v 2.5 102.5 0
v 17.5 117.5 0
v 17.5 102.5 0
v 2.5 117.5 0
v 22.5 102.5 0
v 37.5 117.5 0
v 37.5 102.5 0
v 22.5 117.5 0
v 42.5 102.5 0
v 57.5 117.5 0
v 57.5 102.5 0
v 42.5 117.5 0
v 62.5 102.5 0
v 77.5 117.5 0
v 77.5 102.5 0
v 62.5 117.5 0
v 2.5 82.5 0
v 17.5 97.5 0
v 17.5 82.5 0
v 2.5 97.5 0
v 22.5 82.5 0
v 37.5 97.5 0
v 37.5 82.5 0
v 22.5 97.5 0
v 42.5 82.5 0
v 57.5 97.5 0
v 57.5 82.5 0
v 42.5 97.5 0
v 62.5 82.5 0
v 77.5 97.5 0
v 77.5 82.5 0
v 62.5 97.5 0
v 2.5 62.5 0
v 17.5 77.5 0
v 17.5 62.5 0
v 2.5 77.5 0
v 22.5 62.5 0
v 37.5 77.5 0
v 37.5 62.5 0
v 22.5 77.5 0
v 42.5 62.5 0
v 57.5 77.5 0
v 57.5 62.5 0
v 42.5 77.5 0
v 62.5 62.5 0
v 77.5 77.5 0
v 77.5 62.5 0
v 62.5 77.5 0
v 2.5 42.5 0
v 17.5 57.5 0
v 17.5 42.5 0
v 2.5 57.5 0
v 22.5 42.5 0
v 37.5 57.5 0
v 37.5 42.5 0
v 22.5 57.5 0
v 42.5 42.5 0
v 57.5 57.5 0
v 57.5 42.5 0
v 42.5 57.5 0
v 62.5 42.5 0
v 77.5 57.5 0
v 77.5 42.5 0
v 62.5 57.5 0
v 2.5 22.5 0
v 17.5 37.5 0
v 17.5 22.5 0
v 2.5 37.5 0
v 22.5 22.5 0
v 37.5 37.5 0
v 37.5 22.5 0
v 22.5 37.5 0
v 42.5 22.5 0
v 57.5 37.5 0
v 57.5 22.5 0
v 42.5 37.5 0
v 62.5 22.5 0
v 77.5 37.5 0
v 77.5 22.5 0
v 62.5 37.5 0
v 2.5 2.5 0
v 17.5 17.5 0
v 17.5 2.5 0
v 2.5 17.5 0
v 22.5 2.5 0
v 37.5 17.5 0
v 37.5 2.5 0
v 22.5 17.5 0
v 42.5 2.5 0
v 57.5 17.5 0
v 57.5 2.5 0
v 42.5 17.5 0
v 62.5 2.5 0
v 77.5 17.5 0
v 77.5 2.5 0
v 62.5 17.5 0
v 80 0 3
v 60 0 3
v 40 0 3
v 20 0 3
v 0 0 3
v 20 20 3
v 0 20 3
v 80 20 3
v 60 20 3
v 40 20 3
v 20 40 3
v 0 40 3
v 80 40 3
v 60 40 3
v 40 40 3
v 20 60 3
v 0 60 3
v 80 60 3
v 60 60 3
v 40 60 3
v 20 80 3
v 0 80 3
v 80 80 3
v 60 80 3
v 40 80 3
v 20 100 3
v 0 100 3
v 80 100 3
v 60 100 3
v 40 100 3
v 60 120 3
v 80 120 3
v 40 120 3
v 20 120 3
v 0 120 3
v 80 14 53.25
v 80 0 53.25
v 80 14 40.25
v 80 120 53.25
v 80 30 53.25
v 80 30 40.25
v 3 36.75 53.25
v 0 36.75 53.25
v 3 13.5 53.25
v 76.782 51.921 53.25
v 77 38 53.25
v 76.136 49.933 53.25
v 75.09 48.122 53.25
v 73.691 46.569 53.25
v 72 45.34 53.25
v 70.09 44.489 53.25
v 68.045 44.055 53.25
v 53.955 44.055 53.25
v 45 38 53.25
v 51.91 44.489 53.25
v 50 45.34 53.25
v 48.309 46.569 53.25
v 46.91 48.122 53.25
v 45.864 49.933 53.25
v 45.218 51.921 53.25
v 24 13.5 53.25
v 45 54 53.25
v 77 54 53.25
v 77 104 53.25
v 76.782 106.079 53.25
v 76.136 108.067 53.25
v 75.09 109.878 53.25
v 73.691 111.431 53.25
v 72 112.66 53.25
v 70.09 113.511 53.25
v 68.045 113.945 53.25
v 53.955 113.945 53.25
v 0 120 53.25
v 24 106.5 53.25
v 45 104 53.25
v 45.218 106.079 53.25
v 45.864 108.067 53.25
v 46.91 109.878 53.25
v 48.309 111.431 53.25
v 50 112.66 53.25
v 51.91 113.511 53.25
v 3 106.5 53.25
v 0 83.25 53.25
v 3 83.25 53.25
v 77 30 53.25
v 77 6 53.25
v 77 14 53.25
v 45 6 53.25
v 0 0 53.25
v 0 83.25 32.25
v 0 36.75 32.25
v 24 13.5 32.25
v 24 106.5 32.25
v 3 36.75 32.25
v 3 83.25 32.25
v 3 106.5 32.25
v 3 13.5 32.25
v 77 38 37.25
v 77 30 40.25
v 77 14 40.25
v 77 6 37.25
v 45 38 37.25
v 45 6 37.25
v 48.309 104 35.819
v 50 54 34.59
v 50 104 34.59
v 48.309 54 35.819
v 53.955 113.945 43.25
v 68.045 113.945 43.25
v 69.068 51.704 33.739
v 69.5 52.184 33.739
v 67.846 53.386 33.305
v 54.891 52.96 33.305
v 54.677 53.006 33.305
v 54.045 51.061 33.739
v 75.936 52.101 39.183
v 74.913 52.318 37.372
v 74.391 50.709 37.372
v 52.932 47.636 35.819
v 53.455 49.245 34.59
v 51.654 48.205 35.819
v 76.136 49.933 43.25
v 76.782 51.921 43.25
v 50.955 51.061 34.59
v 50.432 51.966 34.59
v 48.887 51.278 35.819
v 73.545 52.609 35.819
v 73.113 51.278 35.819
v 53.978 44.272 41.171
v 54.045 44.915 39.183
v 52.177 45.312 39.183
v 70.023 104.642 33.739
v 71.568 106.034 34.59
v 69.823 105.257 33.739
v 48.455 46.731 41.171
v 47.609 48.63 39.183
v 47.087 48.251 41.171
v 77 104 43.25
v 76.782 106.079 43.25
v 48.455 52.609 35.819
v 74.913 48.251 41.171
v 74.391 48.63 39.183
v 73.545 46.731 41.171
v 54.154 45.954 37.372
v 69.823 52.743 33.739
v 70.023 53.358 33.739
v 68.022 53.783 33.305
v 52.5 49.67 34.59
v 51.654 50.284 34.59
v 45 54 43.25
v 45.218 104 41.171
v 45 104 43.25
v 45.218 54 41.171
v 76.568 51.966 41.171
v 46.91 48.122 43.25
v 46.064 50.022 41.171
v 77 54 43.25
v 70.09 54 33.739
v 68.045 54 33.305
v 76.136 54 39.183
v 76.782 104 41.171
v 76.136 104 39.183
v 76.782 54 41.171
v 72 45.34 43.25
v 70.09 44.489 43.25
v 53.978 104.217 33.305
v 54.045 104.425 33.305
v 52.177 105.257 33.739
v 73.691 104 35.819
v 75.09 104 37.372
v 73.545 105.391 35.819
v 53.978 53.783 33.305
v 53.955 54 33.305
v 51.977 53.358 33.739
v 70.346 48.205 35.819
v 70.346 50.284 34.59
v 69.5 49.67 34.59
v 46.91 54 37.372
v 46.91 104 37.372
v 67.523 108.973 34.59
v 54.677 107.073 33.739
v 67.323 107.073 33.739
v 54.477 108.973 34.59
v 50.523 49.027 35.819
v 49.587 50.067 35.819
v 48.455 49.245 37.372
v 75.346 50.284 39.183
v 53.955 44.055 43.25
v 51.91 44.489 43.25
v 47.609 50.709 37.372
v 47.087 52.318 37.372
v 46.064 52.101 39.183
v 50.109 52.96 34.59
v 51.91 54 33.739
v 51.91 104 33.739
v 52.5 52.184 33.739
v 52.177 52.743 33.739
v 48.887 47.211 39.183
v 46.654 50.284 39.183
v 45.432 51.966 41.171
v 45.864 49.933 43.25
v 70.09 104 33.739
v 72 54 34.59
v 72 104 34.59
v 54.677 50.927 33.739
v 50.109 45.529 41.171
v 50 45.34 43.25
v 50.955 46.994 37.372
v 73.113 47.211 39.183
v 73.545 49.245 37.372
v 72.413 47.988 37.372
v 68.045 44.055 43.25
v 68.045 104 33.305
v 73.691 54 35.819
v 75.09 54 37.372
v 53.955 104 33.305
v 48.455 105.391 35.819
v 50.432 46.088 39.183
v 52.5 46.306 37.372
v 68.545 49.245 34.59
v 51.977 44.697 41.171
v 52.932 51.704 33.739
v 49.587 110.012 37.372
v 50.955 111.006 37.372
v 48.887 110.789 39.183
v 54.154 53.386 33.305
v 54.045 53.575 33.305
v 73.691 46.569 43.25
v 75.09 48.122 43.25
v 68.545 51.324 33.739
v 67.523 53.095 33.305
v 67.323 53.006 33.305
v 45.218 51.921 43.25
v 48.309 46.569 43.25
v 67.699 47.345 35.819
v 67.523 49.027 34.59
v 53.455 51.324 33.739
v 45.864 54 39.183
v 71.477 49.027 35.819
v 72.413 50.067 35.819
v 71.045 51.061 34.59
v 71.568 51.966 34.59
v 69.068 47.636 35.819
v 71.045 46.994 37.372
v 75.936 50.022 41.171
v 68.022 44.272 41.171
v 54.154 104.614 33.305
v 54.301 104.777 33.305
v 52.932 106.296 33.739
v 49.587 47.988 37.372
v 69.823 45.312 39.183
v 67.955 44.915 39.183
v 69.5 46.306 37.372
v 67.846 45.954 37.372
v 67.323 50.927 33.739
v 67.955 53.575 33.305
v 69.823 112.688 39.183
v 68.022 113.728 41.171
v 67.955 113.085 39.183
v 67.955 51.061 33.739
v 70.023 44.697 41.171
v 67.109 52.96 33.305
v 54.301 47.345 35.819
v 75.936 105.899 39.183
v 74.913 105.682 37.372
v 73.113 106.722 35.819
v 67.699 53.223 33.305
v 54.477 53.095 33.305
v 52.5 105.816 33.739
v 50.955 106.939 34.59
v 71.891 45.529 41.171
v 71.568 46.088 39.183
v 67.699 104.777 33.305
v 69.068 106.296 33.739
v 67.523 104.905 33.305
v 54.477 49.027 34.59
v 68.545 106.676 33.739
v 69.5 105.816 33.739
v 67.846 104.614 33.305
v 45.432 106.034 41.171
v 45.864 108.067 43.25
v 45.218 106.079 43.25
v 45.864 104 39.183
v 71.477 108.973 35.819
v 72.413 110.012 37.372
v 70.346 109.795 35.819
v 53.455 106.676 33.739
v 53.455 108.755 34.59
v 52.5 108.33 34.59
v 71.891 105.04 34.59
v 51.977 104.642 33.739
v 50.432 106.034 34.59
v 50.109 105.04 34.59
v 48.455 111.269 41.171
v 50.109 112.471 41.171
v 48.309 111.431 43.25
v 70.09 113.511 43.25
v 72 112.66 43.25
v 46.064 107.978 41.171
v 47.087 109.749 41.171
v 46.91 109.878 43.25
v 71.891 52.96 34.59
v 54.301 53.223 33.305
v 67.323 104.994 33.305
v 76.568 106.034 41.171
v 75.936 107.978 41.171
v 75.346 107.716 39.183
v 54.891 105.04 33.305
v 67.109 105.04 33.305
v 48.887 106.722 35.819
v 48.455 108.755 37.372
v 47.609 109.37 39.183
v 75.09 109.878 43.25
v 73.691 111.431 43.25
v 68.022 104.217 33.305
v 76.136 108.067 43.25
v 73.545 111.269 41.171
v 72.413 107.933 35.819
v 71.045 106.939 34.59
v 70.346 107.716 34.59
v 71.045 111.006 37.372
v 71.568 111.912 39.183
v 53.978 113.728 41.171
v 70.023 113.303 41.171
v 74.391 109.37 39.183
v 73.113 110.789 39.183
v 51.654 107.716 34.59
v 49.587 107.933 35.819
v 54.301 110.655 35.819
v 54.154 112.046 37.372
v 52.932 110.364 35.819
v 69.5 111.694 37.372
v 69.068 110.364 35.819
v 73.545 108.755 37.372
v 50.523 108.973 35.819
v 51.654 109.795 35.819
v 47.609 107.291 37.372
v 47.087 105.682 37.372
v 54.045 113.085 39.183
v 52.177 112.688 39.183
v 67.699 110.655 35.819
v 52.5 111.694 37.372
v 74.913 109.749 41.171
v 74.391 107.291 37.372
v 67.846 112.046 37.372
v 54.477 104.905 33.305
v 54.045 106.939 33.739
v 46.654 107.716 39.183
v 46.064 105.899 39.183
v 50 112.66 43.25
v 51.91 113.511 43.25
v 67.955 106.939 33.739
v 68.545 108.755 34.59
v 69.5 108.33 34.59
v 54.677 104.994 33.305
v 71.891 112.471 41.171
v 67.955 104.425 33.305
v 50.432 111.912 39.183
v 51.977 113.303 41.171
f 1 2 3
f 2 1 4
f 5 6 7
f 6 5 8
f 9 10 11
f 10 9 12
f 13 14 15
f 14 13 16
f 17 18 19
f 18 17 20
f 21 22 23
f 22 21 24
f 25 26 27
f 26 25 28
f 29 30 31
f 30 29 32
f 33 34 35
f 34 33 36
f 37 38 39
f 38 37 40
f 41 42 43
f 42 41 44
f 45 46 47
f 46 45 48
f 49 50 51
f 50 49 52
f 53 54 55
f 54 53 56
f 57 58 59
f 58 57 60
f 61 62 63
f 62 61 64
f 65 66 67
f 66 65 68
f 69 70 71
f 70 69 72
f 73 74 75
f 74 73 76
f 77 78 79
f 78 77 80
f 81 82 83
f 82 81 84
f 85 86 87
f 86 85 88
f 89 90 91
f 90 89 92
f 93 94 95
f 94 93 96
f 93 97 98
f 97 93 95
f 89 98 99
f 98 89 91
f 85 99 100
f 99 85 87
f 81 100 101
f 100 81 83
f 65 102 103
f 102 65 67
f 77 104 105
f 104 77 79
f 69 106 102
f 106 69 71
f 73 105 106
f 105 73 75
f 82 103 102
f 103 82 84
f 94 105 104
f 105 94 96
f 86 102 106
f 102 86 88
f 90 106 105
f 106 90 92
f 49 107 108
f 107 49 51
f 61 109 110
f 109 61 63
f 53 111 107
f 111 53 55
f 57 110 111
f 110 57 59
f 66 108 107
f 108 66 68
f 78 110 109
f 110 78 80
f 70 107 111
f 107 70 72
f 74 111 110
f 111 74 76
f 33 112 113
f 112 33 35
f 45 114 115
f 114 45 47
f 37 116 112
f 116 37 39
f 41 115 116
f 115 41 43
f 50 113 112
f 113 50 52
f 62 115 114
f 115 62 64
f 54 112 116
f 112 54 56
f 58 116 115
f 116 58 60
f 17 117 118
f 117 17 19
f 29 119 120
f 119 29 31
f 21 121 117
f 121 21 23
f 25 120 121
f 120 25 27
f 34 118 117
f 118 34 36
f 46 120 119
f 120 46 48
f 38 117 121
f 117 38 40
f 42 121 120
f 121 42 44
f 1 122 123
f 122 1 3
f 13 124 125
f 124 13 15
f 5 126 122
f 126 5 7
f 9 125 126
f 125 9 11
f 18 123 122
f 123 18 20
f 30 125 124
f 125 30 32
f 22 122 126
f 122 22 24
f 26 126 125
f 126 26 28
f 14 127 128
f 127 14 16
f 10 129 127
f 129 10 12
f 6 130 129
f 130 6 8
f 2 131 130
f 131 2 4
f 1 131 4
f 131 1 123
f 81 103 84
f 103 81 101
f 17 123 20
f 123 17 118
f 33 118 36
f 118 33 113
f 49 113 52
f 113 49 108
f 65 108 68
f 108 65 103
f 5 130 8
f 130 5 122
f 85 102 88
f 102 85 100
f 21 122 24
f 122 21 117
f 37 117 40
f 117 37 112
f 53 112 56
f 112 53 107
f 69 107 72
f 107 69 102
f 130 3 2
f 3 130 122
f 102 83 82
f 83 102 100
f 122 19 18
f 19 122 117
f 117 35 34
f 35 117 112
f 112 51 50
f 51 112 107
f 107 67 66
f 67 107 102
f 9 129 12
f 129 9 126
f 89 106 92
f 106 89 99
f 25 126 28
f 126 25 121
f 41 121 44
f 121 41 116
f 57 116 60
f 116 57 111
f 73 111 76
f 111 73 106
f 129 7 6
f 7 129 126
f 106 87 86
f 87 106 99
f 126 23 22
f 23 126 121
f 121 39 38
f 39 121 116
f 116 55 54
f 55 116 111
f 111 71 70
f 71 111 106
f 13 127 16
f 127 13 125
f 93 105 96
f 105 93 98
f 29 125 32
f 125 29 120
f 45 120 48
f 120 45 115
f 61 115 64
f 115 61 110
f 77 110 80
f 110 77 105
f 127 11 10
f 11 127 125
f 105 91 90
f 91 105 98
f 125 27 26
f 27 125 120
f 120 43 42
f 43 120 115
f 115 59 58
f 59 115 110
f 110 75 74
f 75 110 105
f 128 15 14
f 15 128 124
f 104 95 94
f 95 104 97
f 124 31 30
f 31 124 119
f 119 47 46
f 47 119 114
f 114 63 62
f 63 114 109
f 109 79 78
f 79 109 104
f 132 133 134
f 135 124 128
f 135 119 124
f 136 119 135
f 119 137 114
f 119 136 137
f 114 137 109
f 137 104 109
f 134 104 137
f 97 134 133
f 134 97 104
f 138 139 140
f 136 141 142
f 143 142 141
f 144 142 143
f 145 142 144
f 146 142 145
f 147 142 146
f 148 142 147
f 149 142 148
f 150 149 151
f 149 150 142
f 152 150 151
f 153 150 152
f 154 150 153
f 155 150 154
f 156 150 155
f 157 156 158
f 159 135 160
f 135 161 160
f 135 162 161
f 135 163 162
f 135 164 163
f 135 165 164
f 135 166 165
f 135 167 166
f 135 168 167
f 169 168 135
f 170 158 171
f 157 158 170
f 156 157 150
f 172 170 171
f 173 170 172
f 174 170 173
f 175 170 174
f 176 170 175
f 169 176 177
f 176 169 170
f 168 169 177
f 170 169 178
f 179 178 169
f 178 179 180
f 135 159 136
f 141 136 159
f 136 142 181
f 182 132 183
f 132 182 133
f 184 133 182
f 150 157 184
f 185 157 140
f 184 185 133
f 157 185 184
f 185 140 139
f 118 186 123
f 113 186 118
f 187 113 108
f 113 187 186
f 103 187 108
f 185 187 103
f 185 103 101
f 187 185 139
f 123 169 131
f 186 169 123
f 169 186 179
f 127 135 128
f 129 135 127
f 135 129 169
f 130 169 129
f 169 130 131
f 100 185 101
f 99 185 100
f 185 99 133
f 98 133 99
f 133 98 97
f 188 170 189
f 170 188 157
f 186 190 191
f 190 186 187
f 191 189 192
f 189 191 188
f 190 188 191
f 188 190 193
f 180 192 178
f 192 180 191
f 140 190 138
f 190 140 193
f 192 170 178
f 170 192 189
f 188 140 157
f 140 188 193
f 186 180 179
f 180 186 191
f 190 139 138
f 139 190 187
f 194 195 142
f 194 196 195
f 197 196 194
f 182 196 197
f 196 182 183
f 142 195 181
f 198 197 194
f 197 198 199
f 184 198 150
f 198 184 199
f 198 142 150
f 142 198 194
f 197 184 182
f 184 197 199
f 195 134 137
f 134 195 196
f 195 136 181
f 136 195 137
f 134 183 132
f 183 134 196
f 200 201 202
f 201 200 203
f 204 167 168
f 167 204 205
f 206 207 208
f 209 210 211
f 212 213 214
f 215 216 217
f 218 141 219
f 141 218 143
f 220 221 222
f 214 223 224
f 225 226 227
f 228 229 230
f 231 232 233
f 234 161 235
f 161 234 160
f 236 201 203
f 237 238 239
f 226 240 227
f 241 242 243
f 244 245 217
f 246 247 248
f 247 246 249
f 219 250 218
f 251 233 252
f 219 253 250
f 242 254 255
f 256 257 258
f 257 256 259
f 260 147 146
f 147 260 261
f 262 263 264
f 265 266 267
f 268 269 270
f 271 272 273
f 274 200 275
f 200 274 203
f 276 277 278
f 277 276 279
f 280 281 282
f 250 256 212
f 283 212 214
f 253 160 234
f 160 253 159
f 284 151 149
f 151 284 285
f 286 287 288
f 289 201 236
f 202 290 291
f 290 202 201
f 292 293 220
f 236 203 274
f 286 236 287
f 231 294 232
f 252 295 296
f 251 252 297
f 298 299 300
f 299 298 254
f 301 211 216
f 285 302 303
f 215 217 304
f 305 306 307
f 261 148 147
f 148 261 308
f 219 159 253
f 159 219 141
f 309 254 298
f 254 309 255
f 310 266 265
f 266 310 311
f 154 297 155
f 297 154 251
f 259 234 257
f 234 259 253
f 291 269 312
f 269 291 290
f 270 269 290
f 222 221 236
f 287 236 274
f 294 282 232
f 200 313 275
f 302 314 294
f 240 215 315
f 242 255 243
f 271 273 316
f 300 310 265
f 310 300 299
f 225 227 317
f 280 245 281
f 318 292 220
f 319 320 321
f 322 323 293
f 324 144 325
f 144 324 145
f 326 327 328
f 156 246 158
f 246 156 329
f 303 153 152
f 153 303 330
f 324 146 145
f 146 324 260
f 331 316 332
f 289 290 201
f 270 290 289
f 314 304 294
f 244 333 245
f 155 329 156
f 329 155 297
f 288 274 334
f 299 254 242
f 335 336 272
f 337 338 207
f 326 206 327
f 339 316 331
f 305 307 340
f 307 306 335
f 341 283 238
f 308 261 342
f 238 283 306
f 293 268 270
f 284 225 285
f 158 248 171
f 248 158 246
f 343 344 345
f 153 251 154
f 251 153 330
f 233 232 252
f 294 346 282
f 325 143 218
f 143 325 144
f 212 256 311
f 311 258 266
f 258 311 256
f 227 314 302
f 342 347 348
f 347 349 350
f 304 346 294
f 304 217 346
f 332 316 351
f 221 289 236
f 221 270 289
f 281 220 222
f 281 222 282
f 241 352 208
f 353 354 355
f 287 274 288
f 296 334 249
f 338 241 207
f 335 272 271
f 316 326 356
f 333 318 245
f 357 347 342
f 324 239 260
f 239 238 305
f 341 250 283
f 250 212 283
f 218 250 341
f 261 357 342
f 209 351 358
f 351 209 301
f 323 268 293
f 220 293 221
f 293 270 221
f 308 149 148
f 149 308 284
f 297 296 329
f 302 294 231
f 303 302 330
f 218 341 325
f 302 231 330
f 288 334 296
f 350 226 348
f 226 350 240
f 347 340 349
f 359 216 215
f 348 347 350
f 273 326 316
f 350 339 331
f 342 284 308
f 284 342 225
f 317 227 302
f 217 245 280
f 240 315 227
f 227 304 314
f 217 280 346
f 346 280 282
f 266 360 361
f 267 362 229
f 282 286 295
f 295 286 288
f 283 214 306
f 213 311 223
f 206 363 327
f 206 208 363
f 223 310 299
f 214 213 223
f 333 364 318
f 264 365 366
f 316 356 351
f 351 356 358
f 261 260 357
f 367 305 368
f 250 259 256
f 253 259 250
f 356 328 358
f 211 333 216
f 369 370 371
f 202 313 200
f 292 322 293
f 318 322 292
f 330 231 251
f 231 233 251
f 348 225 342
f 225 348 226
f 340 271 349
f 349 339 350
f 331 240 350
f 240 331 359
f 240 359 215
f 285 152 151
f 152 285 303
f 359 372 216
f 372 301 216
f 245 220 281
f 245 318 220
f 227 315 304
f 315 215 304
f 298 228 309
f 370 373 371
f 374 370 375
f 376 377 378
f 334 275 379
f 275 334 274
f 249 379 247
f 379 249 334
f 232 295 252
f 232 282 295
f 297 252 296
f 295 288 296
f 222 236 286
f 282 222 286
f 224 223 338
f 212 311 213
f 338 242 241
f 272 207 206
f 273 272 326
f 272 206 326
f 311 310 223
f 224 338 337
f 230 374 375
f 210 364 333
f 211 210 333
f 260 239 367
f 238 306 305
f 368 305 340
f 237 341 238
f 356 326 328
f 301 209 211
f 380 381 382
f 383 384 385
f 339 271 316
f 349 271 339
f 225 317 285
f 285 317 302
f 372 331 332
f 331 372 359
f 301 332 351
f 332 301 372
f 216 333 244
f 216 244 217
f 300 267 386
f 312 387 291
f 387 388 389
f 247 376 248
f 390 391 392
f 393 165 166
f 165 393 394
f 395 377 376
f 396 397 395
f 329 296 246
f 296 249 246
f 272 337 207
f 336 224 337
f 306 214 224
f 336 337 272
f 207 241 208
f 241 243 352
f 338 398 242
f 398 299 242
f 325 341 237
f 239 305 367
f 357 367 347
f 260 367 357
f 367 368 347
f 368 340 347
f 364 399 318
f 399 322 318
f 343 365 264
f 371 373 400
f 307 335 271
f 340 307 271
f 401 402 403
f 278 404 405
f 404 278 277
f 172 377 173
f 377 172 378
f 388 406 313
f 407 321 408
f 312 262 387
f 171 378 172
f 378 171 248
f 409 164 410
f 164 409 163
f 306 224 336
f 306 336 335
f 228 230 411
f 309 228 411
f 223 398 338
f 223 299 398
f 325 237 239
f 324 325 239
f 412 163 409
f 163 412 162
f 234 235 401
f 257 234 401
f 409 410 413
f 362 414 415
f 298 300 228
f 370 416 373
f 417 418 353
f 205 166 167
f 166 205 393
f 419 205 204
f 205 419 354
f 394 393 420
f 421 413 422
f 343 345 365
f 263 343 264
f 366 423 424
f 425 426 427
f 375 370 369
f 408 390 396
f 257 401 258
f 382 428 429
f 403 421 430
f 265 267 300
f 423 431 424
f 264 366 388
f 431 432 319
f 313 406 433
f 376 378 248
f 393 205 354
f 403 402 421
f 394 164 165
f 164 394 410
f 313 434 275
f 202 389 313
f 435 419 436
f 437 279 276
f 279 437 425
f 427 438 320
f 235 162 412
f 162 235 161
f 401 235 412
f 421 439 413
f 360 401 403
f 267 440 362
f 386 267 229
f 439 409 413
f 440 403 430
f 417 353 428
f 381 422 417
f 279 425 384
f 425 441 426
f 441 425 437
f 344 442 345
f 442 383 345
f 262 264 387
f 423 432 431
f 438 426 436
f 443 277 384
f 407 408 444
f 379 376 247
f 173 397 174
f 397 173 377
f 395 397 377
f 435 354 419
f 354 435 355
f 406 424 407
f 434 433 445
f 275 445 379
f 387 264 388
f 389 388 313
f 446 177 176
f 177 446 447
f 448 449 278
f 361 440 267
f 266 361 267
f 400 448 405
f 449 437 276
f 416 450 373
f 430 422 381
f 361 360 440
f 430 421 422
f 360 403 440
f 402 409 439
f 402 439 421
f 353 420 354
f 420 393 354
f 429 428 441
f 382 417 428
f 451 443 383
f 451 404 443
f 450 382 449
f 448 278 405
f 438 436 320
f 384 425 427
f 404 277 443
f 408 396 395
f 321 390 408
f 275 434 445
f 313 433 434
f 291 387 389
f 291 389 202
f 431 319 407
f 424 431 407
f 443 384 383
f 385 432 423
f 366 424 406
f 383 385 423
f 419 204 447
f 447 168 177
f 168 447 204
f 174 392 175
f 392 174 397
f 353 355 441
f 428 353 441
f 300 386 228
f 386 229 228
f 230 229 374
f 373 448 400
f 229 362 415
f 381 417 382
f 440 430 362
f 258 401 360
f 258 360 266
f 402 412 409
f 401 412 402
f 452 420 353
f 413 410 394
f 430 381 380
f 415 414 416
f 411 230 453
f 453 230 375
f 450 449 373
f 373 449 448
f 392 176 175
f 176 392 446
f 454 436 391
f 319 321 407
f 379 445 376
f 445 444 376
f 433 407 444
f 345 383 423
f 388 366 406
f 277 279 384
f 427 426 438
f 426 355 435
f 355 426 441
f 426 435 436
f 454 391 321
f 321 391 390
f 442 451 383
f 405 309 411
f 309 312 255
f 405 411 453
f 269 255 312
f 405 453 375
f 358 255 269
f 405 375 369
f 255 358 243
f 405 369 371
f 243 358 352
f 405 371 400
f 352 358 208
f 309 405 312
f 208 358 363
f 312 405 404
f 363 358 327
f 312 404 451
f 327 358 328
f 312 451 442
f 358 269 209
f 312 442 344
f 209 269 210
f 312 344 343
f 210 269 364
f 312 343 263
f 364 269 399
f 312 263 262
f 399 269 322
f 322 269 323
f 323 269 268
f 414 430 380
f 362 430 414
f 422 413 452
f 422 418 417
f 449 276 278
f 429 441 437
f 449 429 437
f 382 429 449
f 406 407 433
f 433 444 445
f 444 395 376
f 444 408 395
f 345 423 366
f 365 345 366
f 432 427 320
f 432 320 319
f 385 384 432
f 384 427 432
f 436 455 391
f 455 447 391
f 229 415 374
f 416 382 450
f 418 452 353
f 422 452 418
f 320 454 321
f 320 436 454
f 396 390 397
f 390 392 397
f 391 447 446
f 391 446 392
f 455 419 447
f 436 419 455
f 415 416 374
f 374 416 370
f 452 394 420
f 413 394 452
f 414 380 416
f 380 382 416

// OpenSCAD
// file: ../roundedcube.scad
// Aquired from https://danielupshaw.com/openscad-rounded-corners/
// License unknown

// Higher definition curves
$fs = 0.01;

module roundedcube(size = [1, 1, 1], center = false, radius = 0.5, apply_to = "all") {
	// If single value, convert to [x, y, z] vector
	size = (size[0] == undef) ? [size, size, size] : size;

	translate_min = radius;
	translate_xmax = size[0] - radius;
	translate_ymax = size[1] - radius;
	translate_zmax = size[2] - radius;

	diameter = radius * 2;

	module build_point(type = "sphere", rotate = [0, 0, 0]) {
		if (type == "sphere") {
			sphere(r = radius);
		} else if (type == "cylinder") {
			rotate(a = rotate)
			cylinder(h = diameter, r = radius, center = true);
		}
	}

	obj_translate = (center == false) ?
		[0, 0, 0] : [
			-(size[0] / 2),
			-(size[1] / 2),
			-(size[2] / 2)
		];

	translate(v = obj_translate) {
		hull() {
			for (translate_x = [translate_min, translate_xmax]) {
				x_at = (translate_x == translate_min) ? "min" : "max";
				for (translate_y = [translate_min, translate_ymax]) {
					y_at = (translate_y == translate_min) ? "min" : "max";
					for (translate_z = [translate_min, translate_zmax]) {
						z_at = (translate_z == translate_min) ? "min" : "max";

						translate(v = [translate_x, translate_y, translate_z])
						if (
							(apply_to == "all") ||
							(apply_to == "xmin" && x_at == "min") || (apply_to == "xmax" && x_at == "max") ||
							(apply_to == "ymin" && y_at == "min") || (apply_to == "ymax" && y_at == "max") ||
							(apply_to == "zmin" && z_at == "min") || (apply_to == "zmax" && z_at == "max")
						) {
							build_point("sphere");
						} else {
							rotate =
								(apply_to == "xmin" || apply_to == "xmax" || apply_to == "x") ? [0, 90, 0] : (
								(apply_to == "ymin" || apply_to == "ymax" || apply_to == "y") ? [90, 90, 0] :
								[0, 0, 0]
							);
							build_point("cylinder", rotate);
						}
					}
				}
			}
		}
	}
}
// file: ../common.scad
BASE_TILE_SIZE=20;
BASE_WIDTH=5;
PEAK_HEIGHT=3;

DEFAULT_FONT = "Ubuntu:style=Medium";
DEFAULT_FONT_DEPTH = 1;
DEFAULT_FONT_SIZE = 10;

render_helper_h = 1;

function y_up() = [90, 0, 0];
function x_up() = [90, 0, 90];

function min_floor_offset(wall_width) = wall_width + PEAK_HEIGHT;
function tri_mid() = BASE_WIDTH / 2;
function triangle() = [[0, 0],[BASE_WIDTH, 0],[tri_mid(), PEAK_HEIGHT]];
function base_tile_size() = BASE_TILE_SIZE;
function peak_height() = PEAK_HEIGHT;
function font_depth() = DEFAULT_FONT_DEPTH;
function font_size() = DEFAULT_FONT_SIZE;

function isX(direction) = (direction == "x");

module grid(width, depth, direction) {
    length = isX(direction) ? width : depth;
    slot_length = isX(direction) ? depth : width;
    translate_z = isX(direction) ? -slot_length : 0;
    rot = isX(direction) ? y_up() : x_up();

    // This is the total additional slots past the initial one
    total_slots = floor(length / BASE_TILE_SIZE);

    for (i = [0 : total_slots]) {
        offset = -tri_mid() + BASE_TILE_SIZE * i;
        rotate(rot)
        translate([offset, 0, translate_z])
        linear_extrude(height = slot_length)
        polygon(points=triangle());
    }
}

module grid_slots(width, depth) {
    grid(width, depth, "y");
    grid(width, depth, "x");
}

module base_block(width, depth, height, include_grid = true) {
    difference() {
        cube([width, depth, height]);

        if (include_grid) {
            grid_slots(width, depth);
        }
    }
}

module prism(l, w, h) {
    polyhedron(
        points=[ [0, 0, 0], [0, w, h], [l, w, h], [l, 0, 0], [0, w, 0], [l, w, 0] ],
        faces=[ [0, 1, 2, 3],
            [2, 1, 4, 5],
            [0, 3, 5, 4],
            [0, 4, 1],
            [3, 2, 5]
        ]
    );
}

module pyramid(w) {
    polyhedron(
        points=[ [w,w,0],[w,-w,0],[-w,-w,0],[-w,w,0], [0,0,w]  ],
        faces=[ [0,1,4],[1,2,4],[2,3,4],[3,0,4], [1,0,3],[2,1,3] ]
    );
}

module embossed_text(
    t,
    h = DEFAULT_FONT_DEPTH,
    font = DEFAULT_FONT,
    size = DEFAULT_FONT_SIZE,
    valign = "center",
    halign = "center",
    render_helper = true
) {
    extrude_h = (render_helper) ? h + render_helper_h : h;
    
    translate([0, 0, -h])
    linear_extrude(extrude_h)
    text(
        t,
        font = font,
        size = size,
        valign = valign,
        halign = halign
    );
}
// file: common.scad
WALL_WIDTH = 3;
BOX_HEIGHT = 69;
BOX_CLEARENCE = 15.75;

function wall_width() = WALL_WIDTH;
function box_height() = BOX_HEIGHT;
function box_clearence() = BOX_CLEARENCE;
// main file
use <common.scad>
use <../common.scad>
use <../roundedcube.scad>

DICE_WIDTH = 16;

dice_hole_width = DICE_WIDTH * 2;
dice_hole_depth = DICE_WIDTH * 2;

PLAYER_TOKEN_LENGTH = 51;
PLAYER_TOKEN_WIDTH = 31.5;
PLAYER_TOKEN_COUNT = 4;

TIMER_LENGTH = 93;
TIMER_DIAMETER = 21;

SHIP_WIDTH = 32;
SHIP_DEPTH = 70;
SHIP_HEIGHT = 20;

min_depth = max(TIMER_LENGTH + wall_width() * 2, DICE_WIDTH * 2 + SHIP_DEPTH + wall_width() * 3);
min_width = max(SHIP_WIDTH, DICE_WIDTH * 2) + TIMER_DIAMETER + wall_width() * 3;

total_width = ceil(min_width / base_tile_size()) * base_tile_size();
total_depth = ceil(min_depth / base_tile_size()) * base_tile_size();
total_height = box_height() - box_clearence();

dice_ship_padding = (total_depth - SHIP_DEPTH - dice_hole_depth) / 3;

function cutoutLength(depth) = depth / 2;
function cutoutOffset(depth, length) = (depth - length) / 2;

module timer_holder() {
    depth_offset = (total_depth - TIMER_LENGTH) / 2;
    translate([0, depth_offset, total_height - TIMER_DIAMETER])
    union() {
        // Timer cutout
        translate([wall_width(), 0, 0])
        cube([TIMER_DIAMETER, TIMER_LENGTH, TIMER_DIAMETER]);
        
        // Finger cutout
        cutout_length = cutoutLength(TIMER_LENGTH);
        cutout_offset = cutoutOffset(TIMER_LENGTH, cutout_length);
        translate([0, cutout_offset, 0])
        cube([wall_width(), cutout_length, TIMER_DIAMETER]);
    }
}


module dice_holder() {
    width_offset = total_width - dice_hole_width - wall_width();
    depth_offset = dice_ship_padding;
    translate([width_offset, depth_offset, total_height - DICE_WIDTH])
    union() {
        // Dice cutout
        cube([dice_hole_width, dice_hole_depth, DICE_WIDTH]);
        
        cutout_length = cutoutLength(dice_hole_depth);
        cutout_offset = cutoutOffset(dice_hole_depth, cutout_length);
        
        // Finger cutout
        translate([dice_hole_width, cutout_offset, wall_width()])
        cube([wall_width(), cutout_length, DICE_WIDTH - wall_width()]);
    }
}

module ship_holder() {
    width_offset = total_width - SHIP_WIDTH - wall_width();
    depth_offset = dice_ship_padding * 2 + dice_hole_depth;
    translate([width_offset, depth_offset, total_height - SHIP_HEIGHT])
    roundedcube([SHIP_WIDTH, SHIP_DEPTH, SHIP_HEIGHT * 2], false, 10);
}

module ship_and_dice_holder() {
    union() {
        dice_holder();
        ship_holder();
    }
}

difference() {
    base_block(total_width, total_depth, total_height);
    timer_holder();
    ship_and_dice_holder();
}
